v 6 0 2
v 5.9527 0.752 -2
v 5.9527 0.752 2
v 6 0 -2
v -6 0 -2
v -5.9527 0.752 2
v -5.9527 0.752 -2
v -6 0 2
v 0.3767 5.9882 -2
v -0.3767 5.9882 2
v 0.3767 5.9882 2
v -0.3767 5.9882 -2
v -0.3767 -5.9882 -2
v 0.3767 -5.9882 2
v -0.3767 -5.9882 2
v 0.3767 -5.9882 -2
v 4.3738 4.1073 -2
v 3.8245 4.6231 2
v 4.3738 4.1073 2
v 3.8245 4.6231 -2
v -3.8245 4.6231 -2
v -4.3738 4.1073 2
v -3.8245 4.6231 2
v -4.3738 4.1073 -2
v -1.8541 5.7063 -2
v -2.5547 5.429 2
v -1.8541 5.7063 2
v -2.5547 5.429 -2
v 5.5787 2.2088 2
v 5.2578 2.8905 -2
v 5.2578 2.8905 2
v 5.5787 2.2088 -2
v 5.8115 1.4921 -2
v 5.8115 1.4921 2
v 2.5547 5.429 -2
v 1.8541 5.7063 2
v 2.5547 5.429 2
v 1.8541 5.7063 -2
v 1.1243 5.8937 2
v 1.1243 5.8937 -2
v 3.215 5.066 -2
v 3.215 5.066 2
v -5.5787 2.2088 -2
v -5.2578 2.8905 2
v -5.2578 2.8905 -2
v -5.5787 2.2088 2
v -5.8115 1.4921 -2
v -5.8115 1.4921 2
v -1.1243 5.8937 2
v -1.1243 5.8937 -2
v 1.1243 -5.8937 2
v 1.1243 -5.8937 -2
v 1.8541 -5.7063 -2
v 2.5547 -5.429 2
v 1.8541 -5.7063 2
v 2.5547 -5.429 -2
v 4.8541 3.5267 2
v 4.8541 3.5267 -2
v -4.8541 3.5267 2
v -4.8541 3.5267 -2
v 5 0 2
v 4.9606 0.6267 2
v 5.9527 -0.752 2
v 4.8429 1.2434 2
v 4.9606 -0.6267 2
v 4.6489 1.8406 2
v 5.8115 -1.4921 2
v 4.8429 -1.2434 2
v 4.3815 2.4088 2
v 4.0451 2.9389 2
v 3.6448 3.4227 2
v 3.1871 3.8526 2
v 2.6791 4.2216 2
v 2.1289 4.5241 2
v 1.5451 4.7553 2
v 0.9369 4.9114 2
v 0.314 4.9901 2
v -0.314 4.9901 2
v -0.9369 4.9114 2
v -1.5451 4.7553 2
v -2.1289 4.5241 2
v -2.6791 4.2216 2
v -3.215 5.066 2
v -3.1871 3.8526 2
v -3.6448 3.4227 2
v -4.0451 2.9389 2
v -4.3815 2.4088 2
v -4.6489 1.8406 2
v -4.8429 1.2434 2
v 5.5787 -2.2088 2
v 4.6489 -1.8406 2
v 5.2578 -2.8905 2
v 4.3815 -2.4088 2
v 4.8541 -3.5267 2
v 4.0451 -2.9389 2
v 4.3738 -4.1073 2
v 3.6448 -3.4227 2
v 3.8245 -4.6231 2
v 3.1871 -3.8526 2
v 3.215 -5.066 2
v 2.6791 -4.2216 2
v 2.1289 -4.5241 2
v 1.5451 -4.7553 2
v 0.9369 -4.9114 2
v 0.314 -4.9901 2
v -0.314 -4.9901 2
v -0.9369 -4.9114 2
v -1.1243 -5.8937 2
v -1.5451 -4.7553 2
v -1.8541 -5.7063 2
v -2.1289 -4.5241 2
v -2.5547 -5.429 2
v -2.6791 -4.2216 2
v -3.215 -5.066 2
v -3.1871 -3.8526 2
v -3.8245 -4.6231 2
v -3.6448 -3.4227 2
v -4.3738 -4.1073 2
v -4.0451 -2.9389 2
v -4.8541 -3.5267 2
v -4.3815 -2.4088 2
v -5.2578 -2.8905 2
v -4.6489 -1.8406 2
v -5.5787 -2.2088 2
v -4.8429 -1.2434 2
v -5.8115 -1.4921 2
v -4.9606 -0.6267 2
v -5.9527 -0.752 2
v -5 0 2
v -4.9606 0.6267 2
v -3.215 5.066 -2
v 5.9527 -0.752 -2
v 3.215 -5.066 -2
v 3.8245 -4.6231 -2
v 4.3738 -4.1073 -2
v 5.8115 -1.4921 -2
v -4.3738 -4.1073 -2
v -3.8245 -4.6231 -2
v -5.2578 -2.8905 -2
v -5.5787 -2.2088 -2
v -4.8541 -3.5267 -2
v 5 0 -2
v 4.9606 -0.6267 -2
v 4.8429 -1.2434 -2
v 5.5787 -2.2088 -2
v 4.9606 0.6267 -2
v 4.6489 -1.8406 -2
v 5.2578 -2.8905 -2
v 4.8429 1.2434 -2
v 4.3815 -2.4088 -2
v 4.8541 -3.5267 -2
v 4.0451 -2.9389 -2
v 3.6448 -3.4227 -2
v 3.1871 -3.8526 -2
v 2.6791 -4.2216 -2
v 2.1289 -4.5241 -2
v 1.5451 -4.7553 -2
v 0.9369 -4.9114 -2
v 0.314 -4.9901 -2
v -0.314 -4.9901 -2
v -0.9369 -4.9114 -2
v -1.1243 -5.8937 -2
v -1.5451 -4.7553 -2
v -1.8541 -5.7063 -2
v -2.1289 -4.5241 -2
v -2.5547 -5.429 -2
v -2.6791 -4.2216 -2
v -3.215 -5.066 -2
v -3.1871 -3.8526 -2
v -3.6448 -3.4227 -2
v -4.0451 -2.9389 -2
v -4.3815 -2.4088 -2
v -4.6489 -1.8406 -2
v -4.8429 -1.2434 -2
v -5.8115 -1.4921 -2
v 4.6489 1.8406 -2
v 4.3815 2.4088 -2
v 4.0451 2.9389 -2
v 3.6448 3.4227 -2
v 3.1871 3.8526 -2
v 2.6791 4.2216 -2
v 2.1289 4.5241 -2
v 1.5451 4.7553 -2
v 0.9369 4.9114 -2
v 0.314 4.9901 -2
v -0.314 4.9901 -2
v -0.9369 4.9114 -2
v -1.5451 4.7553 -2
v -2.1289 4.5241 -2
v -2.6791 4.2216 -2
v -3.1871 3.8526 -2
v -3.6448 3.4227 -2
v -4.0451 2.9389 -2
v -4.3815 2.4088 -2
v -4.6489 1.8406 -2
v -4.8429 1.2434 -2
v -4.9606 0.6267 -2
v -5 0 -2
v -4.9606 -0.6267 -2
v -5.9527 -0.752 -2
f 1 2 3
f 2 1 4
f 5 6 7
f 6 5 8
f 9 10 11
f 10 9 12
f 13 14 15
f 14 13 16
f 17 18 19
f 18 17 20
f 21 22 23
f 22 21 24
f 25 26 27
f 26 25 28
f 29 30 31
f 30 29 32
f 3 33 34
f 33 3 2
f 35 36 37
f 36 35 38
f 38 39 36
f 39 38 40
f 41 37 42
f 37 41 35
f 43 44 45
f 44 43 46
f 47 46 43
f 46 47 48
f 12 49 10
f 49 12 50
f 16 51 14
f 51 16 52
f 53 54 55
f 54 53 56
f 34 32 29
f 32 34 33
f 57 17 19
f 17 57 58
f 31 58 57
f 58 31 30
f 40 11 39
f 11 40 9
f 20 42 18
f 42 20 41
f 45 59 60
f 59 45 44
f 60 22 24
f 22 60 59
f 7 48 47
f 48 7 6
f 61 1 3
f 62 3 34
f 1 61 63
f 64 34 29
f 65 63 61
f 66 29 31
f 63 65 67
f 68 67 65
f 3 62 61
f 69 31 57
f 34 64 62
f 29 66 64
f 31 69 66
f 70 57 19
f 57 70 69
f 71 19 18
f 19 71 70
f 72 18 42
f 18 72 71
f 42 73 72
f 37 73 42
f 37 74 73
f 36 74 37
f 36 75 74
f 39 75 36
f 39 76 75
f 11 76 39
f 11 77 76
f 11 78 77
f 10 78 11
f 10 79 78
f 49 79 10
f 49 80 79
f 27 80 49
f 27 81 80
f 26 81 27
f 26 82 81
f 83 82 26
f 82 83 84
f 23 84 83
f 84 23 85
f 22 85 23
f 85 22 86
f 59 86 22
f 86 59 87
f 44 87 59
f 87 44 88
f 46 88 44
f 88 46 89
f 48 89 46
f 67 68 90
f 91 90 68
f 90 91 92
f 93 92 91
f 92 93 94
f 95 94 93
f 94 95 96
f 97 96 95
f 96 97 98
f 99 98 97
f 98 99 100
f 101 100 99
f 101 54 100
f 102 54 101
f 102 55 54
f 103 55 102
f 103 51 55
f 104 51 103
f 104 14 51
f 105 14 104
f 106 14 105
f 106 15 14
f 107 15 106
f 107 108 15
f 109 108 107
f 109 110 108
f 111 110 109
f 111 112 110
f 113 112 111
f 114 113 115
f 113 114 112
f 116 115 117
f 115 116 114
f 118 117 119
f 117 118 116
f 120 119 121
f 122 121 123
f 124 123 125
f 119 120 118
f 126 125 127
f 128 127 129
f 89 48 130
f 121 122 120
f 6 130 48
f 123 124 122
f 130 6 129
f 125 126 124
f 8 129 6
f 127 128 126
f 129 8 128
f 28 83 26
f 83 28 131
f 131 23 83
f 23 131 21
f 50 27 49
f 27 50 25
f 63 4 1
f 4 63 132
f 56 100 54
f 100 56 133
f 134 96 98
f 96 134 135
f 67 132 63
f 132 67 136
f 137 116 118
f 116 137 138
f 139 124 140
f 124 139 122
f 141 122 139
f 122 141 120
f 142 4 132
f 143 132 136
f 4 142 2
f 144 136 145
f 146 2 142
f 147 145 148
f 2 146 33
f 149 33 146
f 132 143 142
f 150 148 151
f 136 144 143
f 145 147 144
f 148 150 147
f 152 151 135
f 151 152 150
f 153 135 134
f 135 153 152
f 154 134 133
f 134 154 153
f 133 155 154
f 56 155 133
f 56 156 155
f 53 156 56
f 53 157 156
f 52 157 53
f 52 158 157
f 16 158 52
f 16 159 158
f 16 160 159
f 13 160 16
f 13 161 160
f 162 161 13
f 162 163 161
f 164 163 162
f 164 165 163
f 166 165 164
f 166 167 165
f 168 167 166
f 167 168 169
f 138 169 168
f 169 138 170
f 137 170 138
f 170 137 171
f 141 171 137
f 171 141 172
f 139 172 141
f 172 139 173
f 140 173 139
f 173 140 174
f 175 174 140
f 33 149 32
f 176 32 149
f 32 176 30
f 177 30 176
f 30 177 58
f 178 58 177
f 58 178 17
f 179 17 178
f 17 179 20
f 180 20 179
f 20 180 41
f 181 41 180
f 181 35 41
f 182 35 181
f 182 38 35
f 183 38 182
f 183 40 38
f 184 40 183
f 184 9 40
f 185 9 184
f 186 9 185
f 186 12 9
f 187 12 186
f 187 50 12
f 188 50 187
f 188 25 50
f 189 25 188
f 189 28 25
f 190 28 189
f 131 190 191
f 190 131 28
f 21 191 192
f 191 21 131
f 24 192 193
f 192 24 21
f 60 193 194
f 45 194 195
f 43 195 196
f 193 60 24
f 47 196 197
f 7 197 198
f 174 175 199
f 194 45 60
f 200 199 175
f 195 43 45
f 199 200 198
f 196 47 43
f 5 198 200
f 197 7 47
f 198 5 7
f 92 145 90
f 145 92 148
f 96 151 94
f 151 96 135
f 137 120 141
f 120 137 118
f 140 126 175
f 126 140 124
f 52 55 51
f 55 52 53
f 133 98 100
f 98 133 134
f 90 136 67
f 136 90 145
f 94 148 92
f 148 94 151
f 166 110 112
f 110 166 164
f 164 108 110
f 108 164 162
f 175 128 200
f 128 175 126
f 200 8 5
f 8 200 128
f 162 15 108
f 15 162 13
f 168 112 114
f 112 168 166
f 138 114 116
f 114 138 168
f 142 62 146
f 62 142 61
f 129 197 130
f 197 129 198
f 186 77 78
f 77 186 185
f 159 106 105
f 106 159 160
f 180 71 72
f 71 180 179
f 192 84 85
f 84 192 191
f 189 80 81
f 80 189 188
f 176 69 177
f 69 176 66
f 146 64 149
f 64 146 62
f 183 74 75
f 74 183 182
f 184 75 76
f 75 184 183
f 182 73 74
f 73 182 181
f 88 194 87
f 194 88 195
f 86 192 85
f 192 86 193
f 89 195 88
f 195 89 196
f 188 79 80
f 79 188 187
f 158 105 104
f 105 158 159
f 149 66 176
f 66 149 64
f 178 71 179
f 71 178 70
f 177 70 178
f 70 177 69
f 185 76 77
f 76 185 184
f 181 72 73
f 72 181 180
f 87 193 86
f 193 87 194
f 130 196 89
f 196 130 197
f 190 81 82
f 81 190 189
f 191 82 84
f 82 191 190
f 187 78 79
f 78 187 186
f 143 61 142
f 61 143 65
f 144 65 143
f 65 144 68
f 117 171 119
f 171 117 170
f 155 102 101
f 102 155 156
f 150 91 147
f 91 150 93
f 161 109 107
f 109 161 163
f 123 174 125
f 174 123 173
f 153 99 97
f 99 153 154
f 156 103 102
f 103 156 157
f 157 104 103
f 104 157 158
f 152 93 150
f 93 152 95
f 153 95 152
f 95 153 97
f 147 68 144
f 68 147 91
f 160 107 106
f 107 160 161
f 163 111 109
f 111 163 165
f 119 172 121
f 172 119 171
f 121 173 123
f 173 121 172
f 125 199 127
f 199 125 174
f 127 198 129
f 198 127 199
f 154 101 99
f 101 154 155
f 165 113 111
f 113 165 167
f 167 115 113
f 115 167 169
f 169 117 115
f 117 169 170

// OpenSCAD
$fn = 50;


difference() {
	union() {
		translate(v = [0, 0, -2.0000000000]) {
			cylinder(h = 4, r = 6.0000000000);
		}
	}
	union() {
		translate(v = [0, 0, -100.0000000000]) {
			cylinder(h = 200, r = 5);
		}
	}
}
